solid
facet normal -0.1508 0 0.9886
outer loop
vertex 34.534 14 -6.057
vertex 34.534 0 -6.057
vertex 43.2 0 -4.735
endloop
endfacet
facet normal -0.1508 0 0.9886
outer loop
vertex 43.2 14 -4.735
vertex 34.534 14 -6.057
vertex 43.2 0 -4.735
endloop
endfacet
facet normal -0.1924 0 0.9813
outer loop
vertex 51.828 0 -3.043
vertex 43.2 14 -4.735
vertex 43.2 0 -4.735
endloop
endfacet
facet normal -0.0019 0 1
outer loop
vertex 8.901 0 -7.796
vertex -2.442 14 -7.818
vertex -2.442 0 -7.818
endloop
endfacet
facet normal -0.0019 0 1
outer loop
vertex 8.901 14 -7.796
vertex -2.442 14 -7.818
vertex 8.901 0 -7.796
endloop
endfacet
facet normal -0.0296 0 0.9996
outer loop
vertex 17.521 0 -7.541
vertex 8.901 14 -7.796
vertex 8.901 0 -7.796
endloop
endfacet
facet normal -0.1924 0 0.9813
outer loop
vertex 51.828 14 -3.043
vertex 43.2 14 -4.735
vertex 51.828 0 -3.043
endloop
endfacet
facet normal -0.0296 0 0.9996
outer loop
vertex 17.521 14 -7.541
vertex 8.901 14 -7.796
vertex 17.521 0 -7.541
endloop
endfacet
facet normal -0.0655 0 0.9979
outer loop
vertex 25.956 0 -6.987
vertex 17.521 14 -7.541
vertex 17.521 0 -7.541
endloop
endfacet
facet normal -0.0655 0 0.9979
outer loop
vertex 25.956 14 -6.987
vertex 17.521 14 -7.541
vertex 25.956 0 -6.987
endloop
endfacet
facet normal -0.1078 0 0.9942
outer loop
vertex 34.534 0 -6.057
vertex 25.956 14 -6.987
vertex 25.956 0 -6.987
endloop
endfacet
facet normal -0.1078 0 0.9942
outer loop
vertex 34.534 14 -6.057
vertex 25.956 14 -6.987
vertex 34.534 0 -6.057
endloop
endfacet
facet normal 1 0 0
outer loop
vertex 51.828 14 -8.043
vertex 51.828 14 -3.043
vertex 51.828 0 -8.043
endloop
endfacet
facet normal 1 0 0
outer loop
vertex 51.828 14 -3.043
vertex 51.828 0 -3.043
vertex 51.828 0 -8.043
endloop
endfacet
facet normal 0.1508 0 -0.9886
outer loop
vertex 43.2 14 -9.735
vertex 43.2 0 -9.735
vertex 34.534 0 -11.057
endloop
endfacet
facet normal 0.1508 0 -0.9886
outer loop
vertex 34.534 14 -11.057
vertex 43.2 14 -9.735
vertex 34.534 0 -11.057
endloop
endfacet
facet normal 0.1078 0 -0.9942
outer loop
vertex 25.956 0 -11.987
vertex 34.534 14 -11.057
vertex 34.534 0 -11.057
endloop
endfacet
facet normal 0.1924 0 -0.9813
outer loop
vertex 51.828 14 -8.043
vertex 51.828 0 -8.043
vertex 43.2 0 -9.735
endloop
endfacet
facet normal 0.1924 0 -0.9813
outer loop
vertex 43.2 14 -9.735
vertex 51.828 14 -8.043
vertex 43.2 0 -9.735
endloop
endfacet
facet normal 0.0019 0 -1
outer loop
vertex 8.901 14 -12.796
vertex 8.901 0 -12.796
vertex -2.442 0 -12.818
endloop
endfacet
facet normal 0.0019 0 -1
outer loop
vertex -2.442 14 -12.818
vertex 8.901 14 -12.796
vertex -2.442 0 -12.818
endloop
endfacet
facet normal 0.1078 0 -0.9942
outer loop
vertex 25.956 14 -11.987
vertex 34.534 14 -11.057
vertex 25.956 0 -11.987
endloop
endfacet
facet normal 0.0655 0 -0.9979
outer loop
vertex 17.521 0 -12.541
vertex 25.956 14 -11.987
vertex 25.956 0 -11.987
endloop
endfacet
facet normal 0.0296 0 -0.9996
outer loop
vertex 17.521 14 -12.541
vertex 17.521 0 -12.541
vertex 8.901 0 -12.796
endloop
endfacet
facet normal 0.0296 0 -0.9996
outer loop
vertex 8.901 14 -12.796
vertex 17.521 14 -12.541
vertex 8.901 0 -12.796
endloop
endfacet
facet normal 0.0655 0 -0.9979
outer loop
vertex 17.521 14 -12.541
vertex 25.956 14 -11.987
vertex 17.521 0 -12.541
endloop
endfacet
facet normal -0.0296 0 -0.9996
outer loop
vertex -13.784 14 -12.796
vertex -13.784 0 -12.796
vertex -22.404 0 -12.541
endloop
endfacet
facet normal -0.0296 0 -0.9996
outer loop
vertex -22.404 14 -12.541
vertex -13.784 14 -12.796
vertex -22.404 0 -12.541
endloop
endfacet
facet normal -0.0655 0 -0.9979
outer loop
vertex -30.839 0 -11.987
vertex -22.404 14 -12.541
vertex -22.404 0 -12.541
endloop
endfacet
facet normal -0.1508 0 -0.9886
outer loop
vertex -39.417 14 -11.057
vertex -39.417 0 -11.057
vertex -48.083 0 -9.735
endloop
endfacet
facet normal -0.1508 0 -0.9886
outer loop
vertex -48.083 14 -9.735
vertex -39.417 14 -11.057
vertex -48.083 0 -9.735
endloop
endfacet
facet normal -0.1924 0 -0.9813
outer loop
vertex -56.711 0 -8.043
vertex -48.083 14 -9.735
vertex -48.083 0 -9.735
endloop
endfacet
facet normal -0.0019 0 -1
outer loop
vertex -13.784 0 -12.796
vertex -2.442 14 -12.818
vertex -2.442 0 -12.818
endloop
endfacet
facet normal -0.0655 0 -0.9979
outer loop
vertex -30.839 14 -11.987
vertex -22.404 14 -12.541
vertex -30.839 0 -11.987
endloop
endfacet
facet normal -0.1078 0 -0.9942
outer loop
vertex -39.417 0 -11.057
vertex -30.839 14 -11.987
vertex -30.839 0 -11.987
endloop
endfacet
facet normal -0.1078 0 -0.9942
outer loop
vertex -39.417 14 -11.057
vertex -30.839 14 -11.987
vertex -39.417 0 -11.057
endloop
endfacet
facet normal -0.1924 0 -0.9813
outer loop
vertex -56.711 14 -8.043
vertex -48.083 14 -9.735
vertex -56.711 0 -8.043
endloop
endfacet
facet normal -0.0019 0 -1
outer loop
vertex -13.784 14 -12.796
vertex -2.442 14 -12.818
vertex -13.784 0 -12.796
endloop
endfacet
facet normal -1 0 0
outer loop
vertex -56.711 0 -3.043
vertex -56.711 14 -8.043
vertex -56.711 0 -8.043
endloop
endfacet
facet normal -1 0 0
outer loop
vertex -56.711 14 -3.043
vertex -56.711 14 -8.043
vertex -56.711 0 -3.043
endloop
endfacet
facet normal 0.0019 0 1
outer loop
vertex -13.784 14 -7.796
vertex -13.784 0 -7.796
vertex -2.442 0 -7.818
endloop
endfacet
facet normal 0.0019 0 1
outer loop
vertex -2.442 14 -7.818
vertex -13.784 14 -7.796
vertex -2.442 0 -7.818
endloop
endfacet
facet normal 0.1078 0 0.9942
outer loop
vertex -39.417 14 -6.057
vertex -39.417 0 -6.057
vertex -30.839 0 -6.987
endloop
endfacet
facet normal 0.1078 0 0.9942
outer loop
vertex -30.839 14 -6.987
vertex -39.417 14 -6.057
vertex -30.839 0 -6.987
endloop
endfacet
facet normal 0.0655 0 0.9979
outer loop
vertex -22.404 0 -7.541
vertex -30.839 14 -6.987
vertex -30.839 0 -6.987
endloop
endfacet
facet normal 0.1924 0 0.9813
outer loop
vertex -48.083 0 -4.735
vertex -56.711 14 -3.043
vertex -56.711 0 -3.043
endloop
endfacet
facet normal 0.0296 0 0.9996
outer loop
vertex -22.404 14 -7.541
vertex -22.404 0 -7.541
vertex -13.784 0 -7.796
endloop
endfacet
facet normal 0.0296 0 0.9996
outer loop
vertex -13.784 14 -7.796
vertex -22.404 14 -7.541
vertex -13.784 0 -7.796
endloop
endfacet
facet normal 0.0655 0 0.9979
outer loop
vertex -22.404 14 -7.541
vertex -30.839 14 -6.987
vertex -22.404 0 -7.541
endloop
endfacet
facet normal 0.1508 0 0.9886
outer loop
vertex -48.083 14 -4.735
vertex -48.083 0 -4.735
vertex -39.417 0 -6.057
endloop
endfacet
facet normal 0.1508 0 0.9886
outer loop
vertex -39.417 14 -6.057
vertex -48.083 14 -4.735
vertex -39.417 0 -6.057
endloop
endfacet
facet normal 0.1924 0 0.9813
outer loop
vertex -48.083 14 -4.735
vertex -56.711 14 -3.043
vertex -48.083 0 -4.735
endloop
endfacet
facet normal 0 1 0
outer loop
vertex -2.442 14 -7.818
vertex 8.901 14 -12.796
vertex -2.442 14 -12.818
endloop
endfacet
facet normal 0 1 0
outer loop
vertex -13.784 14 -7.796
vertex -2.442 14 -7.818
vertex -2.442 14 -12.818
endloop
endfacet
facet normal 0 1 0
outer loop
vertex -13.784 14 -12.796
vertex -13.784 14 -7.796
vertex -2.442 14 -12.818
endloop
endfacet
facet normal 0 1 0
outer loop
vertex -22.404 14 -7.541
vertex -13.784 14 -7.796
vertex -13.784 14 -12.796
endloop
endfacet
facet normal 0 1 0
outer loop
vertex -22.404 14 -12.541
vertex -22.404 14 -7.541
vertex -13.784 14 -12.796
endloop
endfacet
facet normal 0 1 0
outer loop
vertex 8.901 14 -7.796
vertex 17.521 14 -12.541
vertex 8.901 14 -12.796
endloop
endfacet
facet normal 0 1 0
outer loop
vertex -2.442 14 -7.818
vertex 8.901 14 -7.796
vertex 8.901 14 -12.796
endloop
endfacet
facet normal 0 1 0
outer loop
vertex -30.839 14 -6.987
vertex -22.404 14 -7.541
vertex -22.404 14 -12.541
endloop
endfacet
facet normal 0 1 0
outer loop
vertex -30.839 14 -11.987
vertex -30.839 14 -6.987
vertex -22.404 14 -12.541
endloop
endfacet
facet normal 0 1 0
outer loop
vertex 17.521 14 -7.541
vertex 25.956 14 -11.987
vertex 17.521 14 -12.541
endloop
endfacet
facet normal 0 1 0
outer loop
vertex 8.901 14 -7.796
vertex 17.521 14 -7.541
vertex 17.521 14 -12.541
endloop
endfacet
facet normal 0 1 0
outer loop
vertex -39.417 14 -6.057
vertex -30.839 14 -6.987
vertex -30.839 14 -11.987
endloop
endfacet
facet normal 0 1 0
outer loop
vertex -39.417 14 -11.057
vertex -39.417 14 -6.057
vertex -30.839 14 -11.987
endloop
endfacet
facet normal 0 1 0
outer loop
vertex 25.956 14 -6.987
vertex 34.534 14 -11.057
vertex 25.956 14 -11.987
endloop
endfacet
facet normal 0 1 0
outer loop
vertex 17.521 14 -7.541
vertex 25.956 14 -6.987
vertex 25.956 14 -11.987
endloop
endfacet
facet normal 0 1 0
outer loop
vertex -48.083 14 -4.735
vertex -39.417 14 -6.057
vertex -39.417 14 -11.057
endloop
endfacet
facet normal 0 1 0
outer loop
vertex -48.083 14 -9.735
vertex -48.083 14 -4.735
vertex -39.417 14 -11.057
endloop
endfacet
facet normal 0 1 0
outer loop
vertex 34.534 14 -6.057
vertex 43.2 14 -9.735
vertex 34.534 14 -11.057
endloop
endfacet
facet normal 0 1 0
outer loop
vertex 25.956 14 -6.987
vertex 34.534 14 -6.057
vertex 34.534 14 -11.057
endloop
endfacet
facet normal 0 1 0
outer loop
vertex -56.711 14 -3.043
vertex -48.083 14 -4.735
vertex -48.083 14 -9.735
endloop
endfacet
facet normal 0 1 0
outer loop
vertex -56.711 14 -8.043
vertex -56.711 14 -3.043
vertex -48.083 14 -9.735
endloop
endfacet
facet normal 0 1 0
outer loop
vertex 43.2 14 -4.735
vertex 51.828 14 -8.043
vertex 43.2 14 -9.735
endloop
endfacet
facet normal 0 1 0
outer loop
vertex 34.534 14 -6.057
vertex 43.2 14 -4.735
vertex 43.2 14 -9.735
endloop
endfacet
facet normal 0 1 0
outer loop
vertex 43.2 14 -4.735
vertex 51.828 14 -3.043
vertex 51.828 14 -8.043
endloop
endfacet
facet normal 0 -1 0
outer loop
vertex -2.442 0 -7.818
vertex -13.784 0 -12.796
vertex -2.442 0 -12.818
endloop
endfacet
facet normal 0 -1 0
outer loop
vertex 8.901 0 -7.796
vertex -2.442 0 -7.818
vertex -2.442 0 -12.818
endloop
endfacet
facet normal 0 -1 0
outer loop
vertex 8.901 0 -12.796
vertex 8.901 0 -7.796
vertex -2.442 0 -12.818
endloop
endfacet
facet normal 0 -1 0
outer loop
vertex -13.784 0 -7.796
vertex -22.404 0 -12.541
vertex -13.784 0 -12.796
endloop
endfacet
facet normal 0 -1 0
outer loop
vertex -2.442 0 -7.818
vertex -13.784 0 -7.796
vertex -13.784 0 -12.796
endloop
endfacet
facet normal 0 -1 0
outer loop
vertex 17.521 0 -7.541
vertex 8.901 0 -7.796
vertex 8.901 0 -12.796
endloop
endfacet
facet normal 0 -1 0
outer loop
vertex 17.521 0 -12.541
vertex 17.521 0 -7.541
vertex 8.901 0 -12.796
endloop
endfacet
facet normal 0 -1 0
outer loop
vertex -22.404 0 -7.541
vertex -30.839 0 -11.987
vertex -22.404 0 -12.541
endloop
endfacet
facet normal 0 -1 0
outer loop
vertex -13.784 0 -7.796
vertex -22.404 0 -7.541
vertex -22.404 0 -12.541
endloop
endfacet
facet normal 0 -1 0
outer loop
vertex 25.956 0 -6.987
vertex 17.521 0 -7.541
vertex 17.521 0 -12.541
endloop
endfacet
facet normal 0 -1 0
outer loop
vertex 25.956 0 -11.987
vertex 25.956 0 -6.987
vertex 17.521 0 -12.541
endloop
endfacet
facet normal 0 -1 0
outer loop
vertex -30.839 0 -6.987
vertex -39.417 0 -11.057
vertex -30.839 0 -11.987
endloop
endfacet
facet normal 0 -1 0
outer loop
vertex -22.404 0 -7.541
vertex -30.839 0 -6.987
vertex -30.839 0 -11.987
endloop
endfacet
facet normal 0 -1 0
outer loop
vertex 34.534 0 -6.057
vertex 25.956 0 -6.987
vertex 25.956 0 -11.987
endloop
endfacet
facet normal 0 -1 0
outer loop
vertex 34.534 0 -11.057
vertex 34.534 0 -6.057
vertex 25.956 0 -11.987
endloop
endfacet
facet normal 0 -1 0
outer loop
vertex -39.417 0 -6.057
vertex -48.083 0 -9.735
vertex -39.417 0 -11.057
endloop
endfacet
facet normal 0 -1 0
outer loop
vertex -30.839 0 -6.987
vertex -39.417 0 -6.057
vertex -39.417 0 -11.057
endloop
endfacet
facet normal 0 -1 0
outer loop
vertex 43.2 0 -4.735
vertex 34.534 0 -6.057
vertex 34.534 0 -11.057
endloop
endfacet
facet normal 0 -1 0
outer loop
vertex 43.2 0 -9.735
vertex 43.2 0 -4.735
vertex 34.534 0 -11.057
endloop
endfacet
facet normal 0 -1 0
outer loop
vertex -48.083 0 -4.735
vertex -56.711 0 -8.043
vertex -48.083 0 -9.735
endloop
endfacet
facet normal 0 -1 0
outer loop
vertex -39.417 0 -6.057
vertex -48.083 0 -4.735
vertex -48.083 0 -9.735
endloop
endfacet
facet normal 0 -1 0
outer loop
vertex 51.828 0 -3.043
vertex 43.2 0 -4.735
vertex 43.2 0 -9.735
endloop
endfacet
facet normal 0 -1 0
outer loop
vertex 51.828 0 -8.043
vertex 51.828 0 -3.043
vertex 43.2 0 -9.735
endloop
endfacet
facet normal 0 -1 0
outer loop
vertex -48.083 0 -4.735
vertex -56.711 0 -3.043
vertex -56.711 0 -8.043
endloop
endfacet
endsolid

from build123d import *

# Parameters (mm, degrees)
BOSS_EXTRUDE1_DEPTH = 14


with BuildPart() as part:
    # Sketch1 → Boss-Extrude1 (new body)
    with BuildSketch(Plane(origin=(0, 0, 0), x_dir=(1, 0, 0), z_dir=(0, 1, 0))):
        with BuildLine():
            Line((-56.7108806, 8.042770274), (-56.7108806, 3.042770274))
            add(Edge.make_bspline(
                [(-56.7108806, 3.042770274), (-48.323705975, 4.870534091), (-35.02737225, 6.93787877), (-16.87934757, 7.860332352), (-7.605819721, 7.844934175), (-2.44151388, 7.817702683)],
                knots=[0, 0, 0, 0, 0.47203113, 0.735860593, 1, 1, 1, 1], degree=3))
            add(Edge.make_bspline(
                [(-2.44151388, 7.817702683), (2.722791962, 7.844934175), (11.99631981, 7.860332352), (30.144344491, 6.93787877), (43.440678216, 4.870534091), (51.827852841, 3.042770274)],
                knots=[0.442922252, 0.442922252, 0.442922252, 0.442922252, 0.707061659, 0.970891122, 1.442922252, 1.442922252, 1.442922252, 1.442922252], degree=3))
            Line((51.827852841, 3.042770274), (51.827852841, 8.042770274))
            add(Edge.make_bspline(
                [(51.827852841, 8.042770274), (43.440678216, 9.870534091), (30.144344491, 11.93787877), (11.99631981, 12.860332352), (2.722791962, 12.844934175), (-2.44151388, 12.817702683)],
                knots=[0, 0, 0, 0, 0.47203113, 0.735860593, 1, 1, 1, 1], degree=3))
            add(Edge.make_bspline(
                [(-56.7108806, 8.042770274), (-48.323705975, 9.870534091), (-35.02737225, 11.93787877), (-16.87934757, 12.860332352), (-7.605819721, 12.844934175), (-2.44151388, 12.817702683)],
                knots=[0, 0, 0, 0, 0.47203113, 0.735860593, 1, 1, 1, 1], degree=3))
        make_face()
    extrude(amount=BOSS_EXTRUDE1_DEPTH)


solid = part.part
